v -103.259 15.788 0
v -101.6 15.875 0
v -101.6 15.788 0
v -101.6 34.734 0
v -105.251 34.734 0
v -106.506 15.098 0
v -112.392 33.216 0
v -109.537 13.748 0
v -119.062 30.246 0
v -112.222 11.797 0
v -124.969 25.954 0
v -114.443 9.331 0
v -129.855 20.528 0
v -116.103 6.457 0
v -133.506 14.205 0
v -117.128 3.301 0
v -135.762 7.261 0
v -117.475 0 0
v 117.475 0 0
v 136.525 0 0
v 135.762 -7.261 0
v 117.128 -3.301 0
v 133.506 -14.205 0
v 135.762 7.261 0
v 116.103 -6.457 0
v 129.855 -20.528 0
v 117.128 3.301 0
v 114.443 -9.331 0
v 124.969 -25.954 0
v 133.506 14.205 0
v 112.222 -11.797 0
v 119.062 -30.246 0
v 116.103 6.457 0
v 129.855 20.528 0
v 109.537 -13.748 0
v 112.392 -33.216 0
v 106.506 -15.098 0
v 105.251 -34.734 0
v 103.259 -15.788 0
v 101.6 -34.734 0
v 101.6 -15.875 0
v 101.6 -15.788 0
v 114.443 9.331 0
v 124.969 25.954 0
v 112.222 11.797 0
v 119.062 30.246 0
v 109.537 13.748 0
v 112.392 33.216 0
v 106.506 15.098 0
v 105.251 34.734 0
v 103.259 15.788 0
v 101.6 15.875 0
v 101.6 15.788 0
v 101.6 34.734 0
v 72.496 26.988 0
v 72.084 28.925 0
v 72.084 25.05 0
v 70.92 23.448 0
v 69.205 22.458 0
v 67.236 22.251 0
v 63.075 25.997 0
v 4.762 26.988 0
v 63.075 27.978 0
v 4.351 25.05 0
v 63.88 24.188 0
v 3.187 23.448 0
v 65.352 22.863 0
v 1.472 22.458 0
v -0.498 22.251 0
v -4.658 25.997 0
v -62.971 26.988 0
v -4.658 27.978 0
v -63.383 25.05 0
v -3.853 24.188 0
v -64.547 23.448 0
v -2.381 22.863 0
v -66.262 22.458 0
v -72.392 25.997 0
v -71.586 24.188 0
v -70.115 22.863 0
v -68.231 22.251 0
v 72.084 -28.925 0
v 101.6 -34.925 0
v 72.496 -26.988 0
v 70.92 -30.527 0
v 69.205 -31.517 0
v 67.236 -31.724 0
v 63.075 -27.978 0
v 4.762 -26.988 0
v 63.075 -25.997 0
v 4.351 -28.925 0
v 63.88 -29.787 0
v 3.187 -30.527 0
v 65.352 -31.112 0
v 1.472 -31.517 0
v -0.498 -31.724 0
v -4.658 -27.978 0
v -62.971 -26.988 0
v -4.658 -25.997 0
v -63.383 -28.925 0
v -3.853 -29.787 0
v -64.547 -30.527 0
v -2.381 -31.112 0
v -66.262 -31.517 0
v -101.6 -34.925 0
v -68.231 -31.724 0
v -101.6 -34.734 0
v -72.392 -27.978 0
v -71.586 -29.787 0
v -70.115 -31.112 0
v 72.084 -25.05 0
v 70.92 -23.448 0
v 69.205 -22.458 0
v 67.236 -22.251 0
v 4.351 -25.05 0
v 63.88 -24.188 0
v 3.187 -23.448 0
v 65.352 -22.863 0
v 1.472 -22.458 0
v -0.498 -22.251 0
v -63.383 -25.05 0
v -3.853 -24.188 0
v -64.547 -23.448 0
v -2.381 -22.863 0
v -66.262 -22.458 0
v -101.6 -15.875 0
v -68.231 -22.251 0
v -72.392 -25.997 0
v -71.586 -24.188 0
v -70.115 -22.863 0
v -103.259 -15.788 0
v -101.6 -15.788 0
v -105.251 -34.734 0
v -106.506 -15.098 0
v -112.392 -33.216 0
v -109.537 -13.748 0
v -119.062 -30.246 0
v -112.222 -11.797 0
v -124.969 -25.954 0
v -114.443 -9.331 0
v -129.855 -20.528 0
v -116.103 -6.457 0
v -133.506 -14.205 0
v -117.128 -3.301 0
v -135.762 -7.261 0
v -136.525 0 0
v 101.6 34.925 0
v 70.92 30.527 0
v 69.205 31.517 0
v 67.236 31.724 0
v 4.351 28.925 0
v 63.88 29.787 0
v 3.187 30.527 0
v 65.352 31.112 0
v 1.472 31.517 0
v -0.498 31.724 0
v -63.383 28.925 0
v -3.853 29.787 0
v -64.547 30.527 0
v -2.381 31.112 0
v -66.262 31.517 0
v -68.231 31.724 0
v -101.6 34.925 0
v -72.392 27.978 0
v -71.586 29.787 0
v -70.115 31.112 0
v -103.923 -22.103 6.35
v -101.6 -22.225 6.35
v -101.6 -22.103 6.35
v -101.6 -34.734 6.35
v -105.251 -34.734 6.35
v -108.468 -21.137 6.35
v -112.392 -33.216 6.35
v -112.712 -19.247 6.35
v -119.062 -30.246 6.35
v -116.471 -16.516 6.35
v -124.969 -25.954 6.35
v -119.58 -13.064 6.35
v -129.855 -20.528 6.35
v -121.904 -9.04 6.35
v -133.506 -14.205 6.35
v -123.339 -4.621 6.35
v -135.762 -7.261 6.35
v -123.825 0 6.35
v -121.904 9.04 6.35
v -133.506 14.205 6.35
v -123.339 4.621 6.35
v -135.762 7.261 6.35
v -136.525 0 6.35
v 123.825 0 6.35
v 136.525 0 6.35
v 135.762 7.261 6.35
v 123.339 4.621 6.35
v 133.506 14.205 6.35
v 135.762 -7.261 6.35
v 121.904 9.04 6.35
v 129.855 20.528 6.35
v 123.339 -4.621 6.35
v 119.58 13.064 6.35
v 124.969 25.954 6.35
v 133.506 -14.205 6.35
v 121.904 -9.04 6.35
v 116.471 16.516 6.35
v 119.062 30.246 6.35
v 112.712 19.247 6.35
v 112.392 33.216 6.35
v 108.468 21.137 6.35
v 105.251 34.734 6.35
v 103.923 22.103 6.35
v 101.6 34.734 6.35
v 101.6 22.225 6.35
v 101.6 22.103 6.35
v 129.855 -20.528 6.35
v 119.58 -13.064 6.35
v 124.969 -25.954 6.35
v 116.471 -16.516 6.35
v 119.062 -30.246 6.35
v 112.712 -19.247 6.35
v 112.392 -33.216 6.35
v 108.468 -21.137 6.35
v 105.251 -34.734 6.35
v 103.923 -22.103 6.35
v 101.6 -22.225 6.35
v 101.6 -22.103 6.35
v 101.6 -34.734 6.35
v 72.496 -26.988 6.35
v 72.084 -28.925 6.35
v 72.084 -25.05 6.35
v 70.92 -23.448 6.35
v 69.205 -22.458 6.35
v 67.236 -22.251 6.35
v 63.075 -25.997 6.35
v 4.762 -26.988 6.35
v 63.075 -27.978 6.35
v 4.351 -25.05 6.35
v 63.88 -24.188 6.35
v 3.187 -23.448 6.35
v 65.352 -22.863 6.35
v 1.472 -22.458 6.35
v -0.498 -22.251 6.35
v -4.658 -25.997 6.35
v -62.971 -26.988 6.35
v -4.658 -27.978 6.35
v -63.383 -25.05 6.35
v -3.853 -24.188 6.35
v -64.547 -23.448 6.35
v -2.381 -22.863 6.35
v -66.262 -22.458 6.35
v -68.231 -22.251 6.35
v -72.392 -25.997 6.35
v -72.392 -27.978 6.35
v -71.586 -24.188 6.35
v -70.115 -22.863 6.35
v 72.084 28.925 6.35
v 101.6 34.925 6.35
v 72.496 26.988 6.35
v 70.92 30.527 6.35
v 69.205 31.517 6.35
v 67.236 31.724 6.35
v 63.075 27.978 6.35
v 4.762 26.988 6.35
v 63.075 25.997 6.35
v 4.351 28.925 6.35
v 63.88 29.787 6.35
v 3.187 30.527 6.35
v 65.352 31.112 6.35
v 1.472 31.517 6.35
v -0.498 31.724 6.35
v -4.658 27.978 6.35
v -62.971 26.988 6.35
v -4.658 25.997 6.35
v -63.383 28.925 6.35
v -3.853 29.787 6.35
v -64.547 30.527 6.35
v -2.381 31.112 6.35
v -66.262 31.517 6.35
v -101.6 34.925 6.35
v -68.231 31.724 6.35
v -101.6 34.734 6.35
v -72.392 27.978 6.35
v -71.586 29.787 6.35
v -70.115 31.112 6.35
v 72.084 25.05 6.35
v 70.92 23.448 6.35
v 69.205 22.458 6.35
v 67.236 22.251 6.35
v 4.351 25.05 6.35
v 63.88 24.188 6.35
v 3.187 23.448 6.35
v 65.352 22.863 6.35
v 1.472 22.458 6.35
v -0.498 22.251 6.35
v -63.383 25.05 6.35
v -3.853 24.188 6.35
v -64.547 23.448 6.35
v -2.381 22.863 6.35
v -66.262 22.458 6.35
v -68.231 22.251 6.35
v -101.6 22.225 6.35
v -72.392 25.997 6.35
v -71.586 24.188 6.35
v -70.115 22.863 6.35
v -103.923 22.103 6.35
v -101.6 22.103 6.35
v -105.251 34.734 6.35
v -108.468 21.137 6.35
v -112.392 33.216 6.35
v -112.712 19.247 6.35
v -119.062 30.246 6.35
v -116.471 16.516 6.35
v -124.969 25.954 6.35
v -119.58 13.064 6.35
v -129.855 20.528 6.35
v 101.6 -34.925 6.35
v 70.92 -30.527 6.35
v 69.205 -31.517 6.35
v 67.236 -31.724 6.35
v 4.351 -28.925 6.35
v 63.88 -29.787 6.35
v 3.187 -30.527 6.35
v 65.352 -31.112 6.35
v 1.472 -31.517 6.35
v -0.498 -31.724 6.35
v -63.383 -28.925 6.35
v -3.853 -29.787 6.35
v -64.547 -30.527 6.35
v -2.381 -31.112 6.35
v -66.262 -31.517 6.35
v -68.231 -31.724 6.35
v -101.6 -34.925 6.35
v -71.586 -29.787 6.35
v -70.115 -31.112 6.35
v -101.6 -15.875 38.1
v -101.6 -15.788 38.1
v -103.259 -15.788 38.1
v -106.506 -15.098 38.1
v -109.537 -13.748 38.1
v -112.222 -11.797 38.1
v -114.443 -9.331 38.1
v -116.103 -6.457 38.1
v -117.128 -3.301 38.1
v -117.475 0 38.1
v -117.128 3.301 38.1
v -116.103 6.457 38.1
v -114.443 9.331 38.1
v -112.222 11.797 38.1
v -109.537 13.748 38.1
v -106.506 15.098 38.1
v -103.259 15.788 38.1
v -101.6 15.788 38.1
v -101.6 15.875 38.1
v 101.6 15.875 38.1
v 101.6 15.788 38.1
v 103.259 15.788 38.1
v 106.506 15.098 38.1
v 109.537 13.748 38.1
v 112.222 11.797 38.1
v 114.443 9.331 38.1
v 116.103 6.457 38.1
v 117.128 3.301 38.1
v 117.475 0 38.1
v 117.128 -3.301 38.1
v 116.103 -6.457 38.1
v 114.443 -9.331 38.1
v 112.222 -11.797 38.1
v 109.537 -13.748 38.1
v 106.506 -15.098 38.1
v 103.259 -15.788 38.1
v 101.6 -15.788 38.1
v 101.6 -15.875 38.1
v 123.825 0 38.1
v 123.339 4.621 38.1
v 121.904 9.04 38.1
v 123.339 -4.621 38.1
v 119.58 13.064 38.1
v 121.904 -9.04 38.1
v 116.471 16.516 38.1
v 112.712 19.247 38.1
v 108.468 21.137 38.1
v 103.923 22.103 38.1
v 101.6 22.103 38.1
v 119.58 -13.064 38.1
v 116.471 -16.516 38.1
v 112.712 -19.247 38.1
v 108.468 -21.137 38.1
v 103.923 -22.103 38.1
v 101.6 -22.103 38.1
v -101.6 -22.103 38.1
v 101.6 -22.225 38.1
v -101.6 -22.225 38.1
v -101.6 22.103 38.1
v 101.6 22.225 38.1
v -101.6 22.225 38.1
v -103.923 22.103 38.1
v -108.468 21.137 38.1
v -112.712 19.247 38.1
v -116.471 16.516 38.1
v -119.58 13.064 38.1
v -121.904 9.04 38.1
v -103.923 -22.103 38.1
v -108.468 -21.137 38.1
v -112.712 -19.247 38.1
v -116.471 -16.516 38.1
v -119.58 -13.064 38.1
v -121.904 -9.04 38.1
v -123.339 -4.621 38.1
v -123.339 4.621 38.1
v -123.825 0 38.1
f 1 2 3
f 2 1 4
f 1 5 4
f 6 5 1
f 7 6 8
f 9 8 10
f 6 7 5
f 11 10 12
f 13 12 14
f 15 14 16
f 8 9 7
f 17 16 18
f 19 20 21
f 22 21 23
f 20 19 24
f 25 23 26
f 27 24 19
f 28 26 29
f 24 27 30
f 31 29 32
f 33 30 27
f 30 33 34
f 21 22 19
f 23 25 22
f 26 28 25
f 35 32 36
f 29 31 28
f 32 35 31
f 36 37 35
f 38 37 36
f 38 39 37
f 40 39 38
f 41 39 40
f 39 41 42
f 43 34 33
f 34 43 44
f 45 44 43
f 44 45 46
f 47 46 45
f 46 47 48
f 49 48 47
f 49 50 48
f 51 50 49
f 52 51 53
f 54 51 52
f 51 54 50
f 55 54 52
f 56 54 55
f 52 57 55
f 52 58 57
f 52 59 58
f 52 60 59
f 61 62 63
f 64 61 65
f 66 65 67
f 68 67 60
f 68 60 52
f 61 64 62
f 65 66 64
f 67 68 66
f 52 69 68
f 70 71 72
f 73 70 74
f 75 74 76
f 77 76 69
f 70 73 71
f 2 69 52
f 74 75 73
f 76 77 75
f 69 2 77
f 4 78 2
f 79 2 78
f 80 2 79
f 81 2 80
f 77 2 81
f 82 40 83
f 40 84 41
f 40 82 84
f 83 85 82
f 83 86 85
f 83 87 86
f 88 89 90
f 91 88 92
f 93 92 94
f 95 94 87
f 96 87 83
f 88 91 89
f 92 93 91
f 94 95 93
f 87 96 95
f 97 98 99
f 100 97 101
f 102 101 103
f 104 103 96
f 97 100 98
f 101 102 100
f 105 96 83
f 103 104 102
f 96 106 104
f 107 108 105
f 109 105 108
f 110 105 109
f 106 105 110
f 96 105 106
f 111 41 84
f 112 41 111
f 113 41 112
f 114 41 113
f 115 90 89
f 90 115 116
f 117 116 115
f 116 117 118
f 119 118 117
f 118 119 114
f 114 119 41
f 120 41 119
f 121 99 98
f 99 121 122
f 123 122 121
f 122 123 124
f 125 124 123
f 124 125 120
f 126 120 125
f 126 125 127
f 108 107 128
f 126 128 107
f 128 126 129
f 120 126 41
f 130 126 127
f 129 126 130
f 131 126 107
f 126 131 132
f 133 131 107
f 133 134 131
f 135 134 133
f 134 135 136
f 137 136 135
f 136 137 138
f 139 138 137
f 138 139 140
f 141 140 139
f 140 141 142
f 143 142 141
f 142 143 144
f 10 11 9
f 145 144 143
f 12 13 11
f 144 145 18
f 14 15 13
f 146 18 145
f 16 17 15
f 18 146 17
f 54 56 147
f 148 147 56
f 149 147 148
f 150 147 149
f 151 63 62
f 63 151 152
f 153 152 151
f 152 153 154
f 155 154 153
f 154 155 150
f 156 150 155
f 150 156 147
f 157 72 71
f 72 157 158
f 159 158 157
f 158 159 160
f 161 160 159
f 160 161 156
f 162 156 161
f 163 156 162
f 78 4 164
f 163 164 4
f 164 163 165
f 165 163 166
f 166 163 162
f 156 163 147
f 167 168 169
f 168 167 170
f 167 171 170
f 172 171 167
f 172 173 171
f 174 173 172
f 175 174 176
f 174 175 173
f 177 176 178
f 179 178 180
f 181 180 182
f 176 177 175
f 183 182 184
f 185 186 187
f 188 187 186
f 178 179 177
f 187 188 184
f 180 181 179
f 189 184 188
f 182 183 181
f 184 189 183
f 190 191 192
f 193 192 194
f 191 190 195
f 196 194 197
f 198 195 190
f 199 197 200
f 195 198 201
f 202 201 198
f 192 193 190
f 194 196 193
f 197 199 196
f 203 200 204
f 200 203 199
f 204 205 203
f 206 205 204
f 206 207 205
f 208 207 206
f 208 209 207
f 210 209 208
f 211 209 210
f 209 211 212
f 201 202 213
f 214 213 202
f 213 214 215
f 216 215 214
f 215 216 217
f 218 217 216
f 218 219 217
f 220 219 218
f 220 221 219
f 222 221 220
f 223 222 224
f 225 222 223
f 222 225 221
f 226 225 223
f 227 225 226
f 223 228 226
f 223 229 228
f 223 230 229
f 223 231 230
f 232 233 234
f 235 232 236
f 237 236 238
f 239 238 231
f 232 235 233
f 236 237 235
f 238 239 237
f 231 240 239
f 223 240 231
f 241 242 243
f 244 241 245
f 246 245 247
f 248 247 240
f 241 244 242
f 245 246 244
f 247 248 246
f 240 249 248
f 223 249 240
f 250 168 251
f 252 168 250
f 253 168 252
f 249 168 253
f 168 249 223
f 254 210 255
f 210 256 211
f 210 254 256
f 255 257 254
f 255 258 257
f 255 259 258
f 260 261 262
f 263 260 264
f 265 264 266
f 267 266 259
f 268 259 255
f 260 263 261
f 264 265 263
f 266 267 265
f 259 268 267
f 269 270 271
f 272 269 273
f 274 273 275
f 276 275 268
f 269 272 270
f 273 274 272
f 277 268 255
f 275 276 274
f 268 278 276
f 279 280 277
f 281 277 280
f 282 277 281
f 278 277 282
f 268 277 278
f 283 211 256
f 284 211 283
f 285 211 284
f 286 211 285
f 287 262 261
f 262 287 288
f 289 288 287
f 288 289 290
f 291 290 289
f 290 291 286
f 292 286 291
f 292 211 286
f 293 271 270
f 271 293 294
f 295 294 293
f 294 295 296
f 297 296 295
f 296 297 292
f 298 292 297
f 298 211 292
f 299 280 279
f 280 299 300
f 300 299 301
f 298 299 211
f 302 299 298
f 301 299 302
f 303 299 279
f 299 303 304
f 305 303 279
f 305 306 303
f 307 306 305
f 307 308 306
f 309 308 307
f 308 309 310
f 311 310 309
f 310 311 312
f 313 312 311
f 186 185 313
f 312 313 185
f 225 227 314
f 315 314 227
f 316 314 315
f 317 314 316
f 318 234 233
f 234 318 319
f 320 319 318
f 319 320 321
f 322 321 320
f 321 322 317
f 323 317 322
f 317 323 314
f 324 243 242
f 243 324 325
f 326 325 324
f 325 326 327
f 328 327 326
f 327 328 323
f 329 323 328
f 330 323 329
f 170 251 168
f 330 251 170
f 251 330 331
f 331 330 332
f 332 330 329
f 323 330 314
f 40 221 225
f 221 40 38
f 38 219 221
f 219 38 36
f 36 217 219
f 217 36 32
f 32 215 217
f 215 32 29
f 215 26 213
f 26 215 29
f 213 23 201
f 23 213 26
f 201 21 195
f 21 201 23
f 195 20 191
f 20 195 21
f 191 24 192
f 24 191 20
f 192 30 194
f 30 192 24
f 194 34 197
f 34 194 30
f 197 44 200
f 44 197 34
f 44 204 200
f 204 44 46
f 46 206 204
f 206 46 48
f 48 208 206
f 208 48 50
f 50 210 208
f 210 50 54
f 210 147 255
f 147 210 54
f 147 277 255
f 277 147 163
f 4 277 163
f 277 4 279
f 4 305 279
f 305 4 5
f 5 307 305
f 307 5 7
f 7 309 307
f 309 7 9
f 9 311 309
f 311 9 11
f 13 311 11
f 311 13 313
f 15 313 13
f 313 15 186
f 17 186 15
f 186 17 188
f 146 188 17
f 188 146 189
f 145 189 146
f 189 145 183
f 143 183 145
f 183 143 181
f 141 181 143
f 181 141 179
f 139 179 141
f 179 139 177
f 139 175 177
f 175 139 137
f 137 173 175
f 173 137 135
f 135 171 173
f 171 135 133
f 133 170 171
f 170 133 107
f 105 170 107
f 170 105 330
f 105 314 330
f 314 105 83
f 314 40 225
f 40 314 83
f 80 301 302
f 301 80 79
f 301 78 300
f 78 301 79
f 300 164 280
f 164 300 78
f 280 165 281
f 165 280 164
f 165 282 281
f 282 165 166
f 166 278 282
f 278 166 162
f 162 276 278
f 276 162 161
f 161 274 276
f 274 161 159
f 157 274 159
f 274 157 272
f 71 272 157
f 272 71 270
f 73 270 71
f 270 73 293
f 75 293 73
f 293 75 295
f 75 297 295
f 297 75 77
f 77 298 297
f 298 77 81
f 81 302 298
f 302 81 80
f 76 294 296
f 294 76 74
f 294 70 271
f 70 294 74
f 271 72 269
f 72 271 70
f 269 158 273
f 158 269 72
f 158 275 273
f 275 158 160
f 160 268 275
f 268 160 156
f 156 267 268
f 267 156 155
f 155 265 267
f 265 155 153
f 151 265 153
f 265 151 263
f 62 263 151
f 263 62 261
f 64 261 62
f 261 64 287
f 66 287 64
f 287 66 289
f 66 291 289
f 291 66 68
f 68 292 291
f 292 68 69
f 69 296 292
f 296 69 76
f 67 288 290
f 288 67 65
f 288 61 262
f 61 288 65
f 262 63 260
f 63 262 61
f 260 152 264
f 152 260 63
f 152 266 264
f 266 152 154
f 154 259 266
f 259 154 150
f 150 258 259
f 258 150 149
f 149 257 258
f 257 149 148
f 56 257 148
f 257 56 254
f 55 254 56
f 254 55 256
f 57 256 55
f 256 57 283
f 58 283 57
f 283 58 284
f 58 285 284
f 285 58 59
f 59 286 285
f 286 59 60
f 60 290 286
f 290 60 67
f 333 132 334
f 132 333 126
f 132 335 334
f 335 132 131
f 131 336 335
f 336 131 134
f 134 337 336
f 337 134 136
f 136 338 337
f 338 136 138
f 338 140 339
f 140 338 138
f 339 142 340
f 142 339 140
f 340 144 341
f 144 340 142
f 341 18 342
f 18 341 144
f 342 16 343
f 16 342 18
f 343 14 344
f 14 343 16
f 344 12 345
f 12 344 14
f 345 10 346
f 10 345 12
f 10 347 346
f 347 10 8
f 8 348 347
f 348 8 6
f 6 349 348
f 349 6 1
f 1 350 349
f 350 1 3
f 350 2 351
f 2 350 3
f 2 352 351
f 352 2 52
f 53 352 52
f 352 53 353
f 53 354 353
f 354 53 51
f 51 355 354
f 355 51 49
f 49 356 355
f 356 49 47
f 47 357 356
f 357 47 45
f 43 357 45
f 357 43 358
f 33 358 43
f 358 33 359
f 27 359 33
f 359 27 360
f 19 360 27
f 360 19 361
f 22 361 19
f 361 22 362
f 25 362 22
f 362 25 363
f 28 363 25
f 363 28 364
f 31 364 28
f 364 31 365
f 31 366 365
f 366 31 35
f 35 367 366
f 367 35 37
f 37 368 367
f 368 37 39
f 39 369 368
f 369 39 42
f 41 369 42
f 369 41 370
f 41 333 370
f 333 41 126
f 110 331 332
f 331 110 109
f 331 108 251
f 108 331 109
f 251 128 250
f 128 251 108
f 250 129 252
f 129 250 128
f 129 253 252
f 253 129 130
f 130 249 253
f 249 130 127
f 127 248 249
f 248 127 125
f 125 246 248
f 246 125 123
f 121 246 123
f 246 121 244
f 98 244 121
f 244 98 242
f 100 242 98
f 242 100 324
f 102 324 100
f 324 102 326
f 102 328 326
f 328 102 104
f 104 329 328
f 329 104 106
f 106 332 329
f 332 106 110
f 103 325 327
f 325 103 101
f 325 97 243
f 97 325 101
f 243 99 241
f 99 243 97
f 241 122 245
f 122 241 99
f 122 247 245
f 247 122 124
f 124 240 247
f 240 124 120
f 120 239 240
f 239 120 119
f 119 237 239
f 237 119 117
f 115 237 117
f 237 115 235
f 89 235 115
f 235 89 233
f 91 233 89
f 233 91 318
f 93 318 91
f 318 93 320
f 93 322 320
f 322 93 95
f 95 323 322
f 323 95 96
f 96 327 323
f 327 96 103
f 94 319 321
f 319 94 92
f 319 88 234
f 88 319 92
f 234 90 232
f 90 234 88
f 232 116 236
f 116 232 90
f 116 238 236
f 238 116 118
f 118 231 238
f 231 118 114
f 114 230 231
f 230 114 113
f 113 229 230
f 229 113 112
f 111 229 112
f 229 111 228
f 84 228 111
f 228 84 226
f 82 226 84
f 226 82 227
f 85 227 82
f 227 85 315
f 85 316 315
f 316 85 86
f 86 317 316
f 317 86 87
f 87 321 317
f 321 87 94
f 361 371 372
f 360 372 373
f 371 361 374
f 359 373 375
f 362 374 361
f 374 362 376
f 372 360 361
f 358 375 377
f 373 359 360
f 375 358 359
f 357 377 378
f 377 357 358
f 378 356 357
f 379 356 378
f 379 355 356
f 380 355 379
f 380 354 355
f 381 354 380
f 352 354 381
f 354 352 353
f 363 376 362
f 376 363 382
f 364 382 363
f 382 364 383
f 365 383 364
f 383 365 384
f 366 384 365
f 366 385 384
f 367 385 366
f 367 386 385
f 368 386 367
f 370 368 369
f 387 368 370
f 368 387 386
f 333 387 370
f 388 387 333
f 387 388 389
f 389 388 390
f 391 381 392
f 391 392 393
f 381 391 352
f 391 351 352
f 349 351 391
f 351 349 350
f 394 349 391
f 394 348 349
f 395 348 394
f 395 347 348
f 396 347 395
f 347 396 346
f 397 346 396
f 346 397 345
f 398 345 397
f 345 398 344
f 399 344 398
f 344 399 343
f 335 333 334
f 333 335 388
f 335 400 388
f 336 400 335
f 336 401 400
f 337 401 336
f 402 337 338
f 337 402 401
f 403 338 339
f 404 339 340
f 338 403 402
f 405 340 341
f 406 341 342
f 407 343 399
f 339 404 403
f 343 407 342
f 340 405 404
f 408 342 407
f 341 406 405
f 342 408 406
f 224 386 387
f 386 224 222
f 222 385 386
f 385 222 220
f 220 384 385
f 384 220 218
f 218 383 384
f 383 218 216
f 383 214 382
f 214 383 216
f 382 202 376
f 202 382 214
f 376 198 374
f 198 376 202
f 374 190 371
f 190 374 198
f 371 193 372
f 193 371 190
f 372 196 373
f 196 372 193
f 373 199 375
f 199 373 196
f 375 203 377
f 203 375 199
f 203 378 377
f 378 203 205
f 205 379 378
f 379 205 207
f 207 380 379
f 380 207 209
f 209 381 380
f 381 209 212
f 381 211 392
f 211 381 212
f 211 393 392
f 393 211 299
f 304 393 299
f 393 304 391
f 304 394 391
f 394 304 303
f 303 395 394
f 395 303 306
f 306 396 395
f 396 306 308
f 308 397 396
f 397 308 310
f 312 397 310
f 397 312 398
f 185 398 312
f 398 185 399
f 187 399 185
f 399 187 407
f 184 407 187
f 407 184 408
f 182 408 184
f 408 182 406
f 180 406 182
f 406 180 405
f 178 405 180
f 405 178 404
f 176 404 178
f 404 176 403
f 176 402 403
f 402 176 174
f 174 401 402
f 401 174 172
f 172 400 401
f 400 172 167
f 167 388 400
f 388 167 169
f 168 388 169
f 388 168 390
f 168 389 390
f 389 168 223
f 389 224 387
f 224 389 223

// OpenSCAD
union() {
	linear_extrude(height = 6.3500000000) {
		difference() {
			difference() {
				difference() {
					difference() {
						difference() {
							difference() {
								difference() {
									union() {
										union() {
											square(center = true, size = [203.2000000000, 69.8500000000]);
											translate(v = [-101.6000000000, 0]) {
												circle(d = 69.8500000000);
											}
										}
										translate(v = [101.6000000000, 0]) {
											circle(d = 69.8500000000);
										}
									}
									translate(v = [-67.7333333333, -26.9875000000]) {
										circle(d = 9.5250000000);
									}
								}
								translate(v = [-67.7333333333, 26.9875000000]) {
									circle(d = 9.5250000000);
								}
							}
							translate(v = [0, -26.9875000000]) {
								circle(d = 9.5250000000);
							}
						}
						translate(v = [0, 26.9875000000]) {
							circle(d = 9.5250000000);
						}
					}
					translate(v = [67.7333333333, -26.9875000000]) {
						circle(d = 9.5250000000);
					}
				}
				translate(v = [67.7333333333, 26.9875000000]) {
					circle(d = 9.5250000000);
				}
			}
			union() {
				union() {
					square(center = true, size = [203.2000000000, 31.7500000000]);
					translate(v = [-101.6000000000, 0]) {
						circle(d = 31.7500000000);
					}
				}
				translate(v = [101.6000000000, 0]) {
					circle(d = 31.7500000000);
				}
			}
		}
	}
	linear_extrude(height = 38.1000000000) {
		difference() {
			union() {
				union() {
					square(center = true, size = [203.2000000000, 44.4500000000]);
					translate(v = [-101.6000000000, 0]) {
						circle(d = 44.4500000000);
					}
				}
				translate(v = [101.6000000000, 0]) {
					circle(d = 44.4500000000);
				}
			}
			union() {
				union() {
					square(center = true, size = [203.2000000000, 31.7500000000]);
					translate(v = [-101.6000000000, 0]) {
						circle(d = 31.7500000000);
					}
				}
				translate(v = [101.6000000000, 0]) {
					circle(d = 31.7500000000);
				}
			}
		}
	}
}
